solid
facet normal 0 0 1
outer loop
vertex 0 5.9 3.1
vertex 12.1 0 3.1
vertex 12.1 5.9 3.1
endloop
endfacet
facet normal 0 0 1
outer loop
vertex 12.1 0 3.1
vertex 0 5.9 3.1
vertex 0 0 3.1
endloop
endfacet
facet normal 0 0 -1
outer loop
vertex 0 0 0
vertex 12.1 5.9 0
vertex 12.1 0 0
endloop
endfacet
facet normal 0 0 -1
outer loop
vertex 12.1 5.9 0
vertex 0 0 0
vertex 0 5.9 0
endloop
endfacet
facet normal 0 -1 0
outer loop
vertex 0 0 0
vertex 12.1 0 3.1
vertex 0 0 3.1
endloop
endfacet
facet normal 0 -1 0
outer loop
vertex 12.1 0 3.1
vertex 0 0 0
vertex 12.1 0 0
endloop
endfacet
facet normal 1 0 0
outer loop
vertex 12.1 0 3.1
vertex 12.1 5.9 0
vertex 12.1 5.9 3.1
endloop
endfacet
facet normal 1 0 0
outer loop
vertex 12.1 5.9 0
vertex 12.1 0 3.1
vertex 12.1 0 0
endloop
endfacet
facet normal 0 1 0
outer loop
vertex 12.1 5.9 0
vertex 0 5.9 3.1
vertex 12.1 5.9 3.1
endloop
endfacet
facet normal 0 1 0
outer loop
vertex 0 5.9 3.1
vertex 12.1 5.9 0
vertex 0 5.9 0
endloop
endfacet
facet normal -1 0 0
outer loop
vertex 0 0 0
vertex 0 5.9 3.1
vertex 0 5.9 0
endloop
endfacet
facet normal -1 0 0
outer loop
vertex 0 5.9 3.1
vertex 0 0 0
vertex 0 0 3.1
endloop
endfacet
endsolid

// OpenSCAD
/* Warning, this is a very basic generator with a lot of approximation 
input data : [TRANSPDR, DJB, 12.1x5.9x3.1mm, , , B, C04-21190B]
generated by com.zoubworld.electronics.cad.model3d.Basic
Date : Sun Feb 15 10:50:49 CET 2026
*/

//body
color("black")
translate([0,0,0])
cube([12.1,5.9,3.1], center=false);
